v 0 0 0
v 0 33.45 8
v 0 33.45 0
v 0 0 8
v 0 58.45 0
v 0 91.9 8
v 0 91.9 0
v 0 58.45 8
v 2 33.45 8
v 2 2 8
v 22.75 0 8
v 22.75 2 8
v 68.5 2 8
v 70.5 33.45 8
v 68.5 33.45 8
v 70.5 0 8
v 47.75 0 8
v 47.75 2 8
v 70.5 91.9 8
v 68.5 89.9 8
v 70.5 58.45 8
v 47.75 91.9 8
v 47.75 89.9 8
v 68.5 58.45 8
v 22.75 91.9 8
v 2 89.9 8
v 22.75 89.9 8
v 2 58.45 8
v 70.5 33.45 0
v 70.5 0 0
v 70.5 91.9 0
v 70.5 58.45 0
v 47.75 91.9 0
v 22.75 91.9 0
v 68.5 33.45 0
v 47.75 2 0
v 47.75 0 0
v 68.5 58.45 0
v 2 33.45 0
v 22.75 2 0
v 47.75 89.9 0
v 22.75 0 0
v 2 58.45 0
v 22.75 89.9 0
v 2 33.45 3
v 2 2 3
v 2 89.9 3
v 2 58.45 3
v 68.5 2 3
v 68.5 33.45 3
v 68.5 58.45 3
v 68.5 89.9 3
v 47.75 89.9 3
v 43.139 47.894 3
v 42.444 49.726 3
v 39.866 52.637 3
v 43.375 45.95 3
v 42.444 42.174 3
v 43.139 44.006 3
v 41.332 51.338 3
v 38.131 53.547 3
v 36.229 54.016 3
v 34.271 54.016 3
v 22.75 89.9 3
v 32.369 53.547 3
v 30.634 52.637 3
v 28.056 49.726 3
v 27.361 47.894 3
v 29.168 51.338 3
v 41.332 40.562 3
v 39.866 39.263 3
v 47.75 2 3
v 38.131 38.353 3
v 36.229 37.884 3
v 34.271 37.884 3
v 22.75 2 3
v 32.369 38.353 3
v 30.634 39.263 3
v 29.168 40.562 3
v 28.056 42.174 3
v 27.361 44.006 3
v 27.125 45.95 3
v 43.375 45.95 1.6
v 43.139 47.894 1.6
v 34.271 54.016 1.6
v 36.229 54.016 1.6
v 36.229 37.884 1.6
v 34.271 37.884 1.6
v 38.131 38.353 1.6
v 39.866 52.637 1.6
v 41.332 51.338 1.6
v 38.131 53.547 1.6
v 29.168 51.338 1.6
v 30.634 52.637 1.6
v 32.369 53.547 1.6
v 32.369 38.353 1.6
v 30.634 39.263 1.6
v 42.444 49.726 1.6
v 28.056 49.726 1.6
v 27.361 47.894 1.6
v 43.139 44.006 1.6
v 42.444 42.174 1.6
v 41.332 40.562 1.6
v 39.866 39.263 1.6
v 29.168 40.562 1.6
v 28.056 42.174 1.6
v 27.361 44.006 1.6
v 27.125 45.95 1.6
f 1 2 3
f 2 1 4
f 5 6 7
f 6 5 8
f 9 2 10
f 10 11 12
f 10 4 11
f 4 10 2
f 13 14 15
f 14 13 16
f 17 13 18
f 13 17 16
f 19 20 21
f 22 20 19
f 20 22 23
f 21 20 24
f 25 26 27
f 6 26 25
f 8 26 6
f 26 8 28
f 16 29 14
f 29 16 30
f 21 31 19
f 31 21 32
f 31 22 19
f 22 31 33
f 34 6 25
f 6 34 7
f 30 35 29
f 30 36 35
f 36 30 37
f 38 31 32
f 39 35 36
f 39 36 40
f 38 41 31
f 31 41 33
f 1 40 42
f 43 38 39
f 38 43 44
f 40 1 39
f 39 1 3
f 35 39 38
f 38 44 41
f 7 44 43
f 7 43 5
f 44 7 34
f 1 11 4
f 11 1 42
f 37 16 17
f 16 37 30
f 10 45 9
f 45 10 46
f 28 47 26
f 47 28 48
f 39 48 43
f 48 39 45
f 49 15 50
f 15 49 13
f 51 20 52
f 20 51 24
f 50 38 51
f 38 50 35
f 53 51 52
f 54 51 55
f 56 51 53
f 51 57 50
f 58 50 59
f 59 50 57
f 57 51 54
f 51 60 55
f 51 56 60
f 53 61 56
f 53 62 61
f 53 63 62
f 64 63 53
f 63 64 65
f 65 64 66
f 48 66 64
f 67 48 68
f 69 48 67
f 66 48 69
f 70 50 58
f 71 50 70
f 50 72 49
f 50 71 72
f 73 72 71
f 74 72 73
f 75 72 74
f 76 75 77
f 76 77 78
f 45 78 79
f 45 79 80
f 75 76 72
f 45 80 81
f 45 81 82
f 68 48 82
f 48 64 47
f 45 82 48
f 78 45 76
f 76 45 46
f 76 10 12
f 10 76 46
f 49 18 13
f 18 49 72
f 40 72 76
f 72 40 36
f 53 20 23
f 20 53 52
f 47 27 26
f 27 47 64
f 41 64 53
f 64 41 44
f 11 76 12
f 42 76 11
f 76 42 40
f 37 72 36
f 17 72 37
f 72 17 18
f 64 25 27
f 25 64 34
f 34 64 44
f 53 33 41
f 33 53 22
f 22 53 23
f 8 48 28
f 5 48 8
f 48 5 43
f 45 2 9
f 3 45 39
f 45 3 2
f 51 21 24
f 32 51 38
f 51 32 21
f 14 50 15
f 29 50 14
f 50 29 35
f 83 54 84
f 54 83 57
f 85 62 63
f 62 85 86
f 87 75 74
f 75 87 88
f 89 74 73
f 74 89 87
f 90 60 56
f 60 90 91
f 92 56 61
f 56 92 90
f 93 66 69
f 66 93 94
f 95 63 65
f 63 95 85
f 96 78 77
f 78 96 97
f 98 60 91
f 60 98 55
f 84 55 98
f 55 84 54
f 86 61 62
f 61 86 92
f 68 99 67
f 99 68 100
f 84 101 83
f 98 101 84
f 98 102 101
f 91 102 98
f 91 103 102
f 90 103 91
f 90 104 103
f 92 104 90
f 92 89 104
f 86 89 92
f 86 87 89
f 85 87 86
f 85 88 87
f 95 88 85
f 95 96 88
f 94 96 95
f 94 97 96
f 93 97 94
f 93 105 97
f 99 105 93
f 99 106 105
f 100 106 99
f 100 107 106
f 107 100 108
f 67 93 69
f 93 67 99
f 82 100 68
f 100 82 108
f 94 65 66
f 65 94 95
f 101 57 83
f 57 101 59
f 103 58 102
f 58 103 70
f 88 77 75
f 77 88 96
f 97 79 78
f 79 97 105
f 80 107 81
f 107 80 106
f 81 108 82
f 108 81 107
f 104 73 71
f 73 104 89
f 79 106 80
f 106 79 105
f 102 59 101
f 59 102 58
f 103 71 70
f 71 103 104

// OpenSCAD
// file: ColonistsGoodsLib.scad
singleGoodPileHeight = 2.15;
singleGoodPileWidth = 15.05 + 1.3;
singleGoodPileLength = 15.05 + 1.3;
goodPileCount = 10;
goodPileHeight = (goodPileCount * singleGoodPileHeight) + .5;
module LeftGoodPile(wallThickness, totalHeight){
//    15.05 by 14.95 by 2.15

    openingSize = singleGoodPileWidth * .75;
    blockerSize = (singleGoodPileLength - openingSize) / 2;
    
    translate([wallThickness, wallThickness, totalHeight - goodPileHeight])
        cube([singleGoodPileLength, singleGoodPileWidth, goodPileHeight]);
    translate([-.00001, wallThickness + (blockerSize), 0])
        cube([wallThickness + openingSize, openingSize, totalHeight]);
}

module RightGoodPile(wallThickness, totalHeight){
    translate([0, wallThickness + wallThickness + singleGoodPileWidth, 0])
        rotate([0, 0, 180])
            LeftGoodPile(wallThickness, totalHeight);
}

module BottomGoodPile(wallThickness, totalHeight){
    translate([wallThickness + wallThickness + singleGoodPileWidth, 0, 0])
        rotate([0, 0, 90])
            LeftGoodPile(wallThickness, totalHeight);
}

module TopGoodPile(wallThickness, totalHeight){
//    translate([
//        wallThickness + wallThickness + singleGoodPileWidth,
//        wallThickness + wallThickness + singleGoodPileWidth,
//        0])
        rotate([0, 0, 270])
            LeftGoodPile(wallThickness, totalHeight);
}
// main file
include<ColonistsGoodsLib.scad>
wallThickness = 3;
length = 65;
width = (singleGoodPileLength + wallThickness) * 4 + wallThickness * 3;
echo(width);

height = 3;
rimHeight = 5;
rimThickness = 2;
notchLength = 25;
//Based on washer size:
washerDiameter = 16.25;
washerHeight = 1.4;
rimPadding = 1.5;
totalHeight = height + rimHeight;

totalLength = length + rimThickness * 2 + rimPadding;
totalWidth = width + rimThickness * 2 + rimPadding;
difference() {
    cube([totalLength, totalWidth, height + rimHeight]);
    translate([rimThickness, rimThickness, height])
        cube([length + rimPadding, width + rimPadding, rimHeight]);
    
    translate([totalLength/2 - notchLength/2, 0, 0])
        cube([notchLength, rimThickness, totalHeight]);
    translate([totalLength/2 - notchLength/2, totalWidth-rimThickness, 0])
        cube([notchLength, rimThickness, totalHeight]);


    translate([0, totalWidth/2 - notchLength/2, 0])
        cube([rimThickness, notchLength, totalHeight]);
    translate([totalLength-rimThickness, totalWidth/2 - notchLength/2, 0])
        cube([rimThickness, notchLength, totalHeight]);
    
    translate([totalLength/2, totalWidth/2, height - washerHeight])
        cylinder(washerHeight, d=washerDiameter);
}
